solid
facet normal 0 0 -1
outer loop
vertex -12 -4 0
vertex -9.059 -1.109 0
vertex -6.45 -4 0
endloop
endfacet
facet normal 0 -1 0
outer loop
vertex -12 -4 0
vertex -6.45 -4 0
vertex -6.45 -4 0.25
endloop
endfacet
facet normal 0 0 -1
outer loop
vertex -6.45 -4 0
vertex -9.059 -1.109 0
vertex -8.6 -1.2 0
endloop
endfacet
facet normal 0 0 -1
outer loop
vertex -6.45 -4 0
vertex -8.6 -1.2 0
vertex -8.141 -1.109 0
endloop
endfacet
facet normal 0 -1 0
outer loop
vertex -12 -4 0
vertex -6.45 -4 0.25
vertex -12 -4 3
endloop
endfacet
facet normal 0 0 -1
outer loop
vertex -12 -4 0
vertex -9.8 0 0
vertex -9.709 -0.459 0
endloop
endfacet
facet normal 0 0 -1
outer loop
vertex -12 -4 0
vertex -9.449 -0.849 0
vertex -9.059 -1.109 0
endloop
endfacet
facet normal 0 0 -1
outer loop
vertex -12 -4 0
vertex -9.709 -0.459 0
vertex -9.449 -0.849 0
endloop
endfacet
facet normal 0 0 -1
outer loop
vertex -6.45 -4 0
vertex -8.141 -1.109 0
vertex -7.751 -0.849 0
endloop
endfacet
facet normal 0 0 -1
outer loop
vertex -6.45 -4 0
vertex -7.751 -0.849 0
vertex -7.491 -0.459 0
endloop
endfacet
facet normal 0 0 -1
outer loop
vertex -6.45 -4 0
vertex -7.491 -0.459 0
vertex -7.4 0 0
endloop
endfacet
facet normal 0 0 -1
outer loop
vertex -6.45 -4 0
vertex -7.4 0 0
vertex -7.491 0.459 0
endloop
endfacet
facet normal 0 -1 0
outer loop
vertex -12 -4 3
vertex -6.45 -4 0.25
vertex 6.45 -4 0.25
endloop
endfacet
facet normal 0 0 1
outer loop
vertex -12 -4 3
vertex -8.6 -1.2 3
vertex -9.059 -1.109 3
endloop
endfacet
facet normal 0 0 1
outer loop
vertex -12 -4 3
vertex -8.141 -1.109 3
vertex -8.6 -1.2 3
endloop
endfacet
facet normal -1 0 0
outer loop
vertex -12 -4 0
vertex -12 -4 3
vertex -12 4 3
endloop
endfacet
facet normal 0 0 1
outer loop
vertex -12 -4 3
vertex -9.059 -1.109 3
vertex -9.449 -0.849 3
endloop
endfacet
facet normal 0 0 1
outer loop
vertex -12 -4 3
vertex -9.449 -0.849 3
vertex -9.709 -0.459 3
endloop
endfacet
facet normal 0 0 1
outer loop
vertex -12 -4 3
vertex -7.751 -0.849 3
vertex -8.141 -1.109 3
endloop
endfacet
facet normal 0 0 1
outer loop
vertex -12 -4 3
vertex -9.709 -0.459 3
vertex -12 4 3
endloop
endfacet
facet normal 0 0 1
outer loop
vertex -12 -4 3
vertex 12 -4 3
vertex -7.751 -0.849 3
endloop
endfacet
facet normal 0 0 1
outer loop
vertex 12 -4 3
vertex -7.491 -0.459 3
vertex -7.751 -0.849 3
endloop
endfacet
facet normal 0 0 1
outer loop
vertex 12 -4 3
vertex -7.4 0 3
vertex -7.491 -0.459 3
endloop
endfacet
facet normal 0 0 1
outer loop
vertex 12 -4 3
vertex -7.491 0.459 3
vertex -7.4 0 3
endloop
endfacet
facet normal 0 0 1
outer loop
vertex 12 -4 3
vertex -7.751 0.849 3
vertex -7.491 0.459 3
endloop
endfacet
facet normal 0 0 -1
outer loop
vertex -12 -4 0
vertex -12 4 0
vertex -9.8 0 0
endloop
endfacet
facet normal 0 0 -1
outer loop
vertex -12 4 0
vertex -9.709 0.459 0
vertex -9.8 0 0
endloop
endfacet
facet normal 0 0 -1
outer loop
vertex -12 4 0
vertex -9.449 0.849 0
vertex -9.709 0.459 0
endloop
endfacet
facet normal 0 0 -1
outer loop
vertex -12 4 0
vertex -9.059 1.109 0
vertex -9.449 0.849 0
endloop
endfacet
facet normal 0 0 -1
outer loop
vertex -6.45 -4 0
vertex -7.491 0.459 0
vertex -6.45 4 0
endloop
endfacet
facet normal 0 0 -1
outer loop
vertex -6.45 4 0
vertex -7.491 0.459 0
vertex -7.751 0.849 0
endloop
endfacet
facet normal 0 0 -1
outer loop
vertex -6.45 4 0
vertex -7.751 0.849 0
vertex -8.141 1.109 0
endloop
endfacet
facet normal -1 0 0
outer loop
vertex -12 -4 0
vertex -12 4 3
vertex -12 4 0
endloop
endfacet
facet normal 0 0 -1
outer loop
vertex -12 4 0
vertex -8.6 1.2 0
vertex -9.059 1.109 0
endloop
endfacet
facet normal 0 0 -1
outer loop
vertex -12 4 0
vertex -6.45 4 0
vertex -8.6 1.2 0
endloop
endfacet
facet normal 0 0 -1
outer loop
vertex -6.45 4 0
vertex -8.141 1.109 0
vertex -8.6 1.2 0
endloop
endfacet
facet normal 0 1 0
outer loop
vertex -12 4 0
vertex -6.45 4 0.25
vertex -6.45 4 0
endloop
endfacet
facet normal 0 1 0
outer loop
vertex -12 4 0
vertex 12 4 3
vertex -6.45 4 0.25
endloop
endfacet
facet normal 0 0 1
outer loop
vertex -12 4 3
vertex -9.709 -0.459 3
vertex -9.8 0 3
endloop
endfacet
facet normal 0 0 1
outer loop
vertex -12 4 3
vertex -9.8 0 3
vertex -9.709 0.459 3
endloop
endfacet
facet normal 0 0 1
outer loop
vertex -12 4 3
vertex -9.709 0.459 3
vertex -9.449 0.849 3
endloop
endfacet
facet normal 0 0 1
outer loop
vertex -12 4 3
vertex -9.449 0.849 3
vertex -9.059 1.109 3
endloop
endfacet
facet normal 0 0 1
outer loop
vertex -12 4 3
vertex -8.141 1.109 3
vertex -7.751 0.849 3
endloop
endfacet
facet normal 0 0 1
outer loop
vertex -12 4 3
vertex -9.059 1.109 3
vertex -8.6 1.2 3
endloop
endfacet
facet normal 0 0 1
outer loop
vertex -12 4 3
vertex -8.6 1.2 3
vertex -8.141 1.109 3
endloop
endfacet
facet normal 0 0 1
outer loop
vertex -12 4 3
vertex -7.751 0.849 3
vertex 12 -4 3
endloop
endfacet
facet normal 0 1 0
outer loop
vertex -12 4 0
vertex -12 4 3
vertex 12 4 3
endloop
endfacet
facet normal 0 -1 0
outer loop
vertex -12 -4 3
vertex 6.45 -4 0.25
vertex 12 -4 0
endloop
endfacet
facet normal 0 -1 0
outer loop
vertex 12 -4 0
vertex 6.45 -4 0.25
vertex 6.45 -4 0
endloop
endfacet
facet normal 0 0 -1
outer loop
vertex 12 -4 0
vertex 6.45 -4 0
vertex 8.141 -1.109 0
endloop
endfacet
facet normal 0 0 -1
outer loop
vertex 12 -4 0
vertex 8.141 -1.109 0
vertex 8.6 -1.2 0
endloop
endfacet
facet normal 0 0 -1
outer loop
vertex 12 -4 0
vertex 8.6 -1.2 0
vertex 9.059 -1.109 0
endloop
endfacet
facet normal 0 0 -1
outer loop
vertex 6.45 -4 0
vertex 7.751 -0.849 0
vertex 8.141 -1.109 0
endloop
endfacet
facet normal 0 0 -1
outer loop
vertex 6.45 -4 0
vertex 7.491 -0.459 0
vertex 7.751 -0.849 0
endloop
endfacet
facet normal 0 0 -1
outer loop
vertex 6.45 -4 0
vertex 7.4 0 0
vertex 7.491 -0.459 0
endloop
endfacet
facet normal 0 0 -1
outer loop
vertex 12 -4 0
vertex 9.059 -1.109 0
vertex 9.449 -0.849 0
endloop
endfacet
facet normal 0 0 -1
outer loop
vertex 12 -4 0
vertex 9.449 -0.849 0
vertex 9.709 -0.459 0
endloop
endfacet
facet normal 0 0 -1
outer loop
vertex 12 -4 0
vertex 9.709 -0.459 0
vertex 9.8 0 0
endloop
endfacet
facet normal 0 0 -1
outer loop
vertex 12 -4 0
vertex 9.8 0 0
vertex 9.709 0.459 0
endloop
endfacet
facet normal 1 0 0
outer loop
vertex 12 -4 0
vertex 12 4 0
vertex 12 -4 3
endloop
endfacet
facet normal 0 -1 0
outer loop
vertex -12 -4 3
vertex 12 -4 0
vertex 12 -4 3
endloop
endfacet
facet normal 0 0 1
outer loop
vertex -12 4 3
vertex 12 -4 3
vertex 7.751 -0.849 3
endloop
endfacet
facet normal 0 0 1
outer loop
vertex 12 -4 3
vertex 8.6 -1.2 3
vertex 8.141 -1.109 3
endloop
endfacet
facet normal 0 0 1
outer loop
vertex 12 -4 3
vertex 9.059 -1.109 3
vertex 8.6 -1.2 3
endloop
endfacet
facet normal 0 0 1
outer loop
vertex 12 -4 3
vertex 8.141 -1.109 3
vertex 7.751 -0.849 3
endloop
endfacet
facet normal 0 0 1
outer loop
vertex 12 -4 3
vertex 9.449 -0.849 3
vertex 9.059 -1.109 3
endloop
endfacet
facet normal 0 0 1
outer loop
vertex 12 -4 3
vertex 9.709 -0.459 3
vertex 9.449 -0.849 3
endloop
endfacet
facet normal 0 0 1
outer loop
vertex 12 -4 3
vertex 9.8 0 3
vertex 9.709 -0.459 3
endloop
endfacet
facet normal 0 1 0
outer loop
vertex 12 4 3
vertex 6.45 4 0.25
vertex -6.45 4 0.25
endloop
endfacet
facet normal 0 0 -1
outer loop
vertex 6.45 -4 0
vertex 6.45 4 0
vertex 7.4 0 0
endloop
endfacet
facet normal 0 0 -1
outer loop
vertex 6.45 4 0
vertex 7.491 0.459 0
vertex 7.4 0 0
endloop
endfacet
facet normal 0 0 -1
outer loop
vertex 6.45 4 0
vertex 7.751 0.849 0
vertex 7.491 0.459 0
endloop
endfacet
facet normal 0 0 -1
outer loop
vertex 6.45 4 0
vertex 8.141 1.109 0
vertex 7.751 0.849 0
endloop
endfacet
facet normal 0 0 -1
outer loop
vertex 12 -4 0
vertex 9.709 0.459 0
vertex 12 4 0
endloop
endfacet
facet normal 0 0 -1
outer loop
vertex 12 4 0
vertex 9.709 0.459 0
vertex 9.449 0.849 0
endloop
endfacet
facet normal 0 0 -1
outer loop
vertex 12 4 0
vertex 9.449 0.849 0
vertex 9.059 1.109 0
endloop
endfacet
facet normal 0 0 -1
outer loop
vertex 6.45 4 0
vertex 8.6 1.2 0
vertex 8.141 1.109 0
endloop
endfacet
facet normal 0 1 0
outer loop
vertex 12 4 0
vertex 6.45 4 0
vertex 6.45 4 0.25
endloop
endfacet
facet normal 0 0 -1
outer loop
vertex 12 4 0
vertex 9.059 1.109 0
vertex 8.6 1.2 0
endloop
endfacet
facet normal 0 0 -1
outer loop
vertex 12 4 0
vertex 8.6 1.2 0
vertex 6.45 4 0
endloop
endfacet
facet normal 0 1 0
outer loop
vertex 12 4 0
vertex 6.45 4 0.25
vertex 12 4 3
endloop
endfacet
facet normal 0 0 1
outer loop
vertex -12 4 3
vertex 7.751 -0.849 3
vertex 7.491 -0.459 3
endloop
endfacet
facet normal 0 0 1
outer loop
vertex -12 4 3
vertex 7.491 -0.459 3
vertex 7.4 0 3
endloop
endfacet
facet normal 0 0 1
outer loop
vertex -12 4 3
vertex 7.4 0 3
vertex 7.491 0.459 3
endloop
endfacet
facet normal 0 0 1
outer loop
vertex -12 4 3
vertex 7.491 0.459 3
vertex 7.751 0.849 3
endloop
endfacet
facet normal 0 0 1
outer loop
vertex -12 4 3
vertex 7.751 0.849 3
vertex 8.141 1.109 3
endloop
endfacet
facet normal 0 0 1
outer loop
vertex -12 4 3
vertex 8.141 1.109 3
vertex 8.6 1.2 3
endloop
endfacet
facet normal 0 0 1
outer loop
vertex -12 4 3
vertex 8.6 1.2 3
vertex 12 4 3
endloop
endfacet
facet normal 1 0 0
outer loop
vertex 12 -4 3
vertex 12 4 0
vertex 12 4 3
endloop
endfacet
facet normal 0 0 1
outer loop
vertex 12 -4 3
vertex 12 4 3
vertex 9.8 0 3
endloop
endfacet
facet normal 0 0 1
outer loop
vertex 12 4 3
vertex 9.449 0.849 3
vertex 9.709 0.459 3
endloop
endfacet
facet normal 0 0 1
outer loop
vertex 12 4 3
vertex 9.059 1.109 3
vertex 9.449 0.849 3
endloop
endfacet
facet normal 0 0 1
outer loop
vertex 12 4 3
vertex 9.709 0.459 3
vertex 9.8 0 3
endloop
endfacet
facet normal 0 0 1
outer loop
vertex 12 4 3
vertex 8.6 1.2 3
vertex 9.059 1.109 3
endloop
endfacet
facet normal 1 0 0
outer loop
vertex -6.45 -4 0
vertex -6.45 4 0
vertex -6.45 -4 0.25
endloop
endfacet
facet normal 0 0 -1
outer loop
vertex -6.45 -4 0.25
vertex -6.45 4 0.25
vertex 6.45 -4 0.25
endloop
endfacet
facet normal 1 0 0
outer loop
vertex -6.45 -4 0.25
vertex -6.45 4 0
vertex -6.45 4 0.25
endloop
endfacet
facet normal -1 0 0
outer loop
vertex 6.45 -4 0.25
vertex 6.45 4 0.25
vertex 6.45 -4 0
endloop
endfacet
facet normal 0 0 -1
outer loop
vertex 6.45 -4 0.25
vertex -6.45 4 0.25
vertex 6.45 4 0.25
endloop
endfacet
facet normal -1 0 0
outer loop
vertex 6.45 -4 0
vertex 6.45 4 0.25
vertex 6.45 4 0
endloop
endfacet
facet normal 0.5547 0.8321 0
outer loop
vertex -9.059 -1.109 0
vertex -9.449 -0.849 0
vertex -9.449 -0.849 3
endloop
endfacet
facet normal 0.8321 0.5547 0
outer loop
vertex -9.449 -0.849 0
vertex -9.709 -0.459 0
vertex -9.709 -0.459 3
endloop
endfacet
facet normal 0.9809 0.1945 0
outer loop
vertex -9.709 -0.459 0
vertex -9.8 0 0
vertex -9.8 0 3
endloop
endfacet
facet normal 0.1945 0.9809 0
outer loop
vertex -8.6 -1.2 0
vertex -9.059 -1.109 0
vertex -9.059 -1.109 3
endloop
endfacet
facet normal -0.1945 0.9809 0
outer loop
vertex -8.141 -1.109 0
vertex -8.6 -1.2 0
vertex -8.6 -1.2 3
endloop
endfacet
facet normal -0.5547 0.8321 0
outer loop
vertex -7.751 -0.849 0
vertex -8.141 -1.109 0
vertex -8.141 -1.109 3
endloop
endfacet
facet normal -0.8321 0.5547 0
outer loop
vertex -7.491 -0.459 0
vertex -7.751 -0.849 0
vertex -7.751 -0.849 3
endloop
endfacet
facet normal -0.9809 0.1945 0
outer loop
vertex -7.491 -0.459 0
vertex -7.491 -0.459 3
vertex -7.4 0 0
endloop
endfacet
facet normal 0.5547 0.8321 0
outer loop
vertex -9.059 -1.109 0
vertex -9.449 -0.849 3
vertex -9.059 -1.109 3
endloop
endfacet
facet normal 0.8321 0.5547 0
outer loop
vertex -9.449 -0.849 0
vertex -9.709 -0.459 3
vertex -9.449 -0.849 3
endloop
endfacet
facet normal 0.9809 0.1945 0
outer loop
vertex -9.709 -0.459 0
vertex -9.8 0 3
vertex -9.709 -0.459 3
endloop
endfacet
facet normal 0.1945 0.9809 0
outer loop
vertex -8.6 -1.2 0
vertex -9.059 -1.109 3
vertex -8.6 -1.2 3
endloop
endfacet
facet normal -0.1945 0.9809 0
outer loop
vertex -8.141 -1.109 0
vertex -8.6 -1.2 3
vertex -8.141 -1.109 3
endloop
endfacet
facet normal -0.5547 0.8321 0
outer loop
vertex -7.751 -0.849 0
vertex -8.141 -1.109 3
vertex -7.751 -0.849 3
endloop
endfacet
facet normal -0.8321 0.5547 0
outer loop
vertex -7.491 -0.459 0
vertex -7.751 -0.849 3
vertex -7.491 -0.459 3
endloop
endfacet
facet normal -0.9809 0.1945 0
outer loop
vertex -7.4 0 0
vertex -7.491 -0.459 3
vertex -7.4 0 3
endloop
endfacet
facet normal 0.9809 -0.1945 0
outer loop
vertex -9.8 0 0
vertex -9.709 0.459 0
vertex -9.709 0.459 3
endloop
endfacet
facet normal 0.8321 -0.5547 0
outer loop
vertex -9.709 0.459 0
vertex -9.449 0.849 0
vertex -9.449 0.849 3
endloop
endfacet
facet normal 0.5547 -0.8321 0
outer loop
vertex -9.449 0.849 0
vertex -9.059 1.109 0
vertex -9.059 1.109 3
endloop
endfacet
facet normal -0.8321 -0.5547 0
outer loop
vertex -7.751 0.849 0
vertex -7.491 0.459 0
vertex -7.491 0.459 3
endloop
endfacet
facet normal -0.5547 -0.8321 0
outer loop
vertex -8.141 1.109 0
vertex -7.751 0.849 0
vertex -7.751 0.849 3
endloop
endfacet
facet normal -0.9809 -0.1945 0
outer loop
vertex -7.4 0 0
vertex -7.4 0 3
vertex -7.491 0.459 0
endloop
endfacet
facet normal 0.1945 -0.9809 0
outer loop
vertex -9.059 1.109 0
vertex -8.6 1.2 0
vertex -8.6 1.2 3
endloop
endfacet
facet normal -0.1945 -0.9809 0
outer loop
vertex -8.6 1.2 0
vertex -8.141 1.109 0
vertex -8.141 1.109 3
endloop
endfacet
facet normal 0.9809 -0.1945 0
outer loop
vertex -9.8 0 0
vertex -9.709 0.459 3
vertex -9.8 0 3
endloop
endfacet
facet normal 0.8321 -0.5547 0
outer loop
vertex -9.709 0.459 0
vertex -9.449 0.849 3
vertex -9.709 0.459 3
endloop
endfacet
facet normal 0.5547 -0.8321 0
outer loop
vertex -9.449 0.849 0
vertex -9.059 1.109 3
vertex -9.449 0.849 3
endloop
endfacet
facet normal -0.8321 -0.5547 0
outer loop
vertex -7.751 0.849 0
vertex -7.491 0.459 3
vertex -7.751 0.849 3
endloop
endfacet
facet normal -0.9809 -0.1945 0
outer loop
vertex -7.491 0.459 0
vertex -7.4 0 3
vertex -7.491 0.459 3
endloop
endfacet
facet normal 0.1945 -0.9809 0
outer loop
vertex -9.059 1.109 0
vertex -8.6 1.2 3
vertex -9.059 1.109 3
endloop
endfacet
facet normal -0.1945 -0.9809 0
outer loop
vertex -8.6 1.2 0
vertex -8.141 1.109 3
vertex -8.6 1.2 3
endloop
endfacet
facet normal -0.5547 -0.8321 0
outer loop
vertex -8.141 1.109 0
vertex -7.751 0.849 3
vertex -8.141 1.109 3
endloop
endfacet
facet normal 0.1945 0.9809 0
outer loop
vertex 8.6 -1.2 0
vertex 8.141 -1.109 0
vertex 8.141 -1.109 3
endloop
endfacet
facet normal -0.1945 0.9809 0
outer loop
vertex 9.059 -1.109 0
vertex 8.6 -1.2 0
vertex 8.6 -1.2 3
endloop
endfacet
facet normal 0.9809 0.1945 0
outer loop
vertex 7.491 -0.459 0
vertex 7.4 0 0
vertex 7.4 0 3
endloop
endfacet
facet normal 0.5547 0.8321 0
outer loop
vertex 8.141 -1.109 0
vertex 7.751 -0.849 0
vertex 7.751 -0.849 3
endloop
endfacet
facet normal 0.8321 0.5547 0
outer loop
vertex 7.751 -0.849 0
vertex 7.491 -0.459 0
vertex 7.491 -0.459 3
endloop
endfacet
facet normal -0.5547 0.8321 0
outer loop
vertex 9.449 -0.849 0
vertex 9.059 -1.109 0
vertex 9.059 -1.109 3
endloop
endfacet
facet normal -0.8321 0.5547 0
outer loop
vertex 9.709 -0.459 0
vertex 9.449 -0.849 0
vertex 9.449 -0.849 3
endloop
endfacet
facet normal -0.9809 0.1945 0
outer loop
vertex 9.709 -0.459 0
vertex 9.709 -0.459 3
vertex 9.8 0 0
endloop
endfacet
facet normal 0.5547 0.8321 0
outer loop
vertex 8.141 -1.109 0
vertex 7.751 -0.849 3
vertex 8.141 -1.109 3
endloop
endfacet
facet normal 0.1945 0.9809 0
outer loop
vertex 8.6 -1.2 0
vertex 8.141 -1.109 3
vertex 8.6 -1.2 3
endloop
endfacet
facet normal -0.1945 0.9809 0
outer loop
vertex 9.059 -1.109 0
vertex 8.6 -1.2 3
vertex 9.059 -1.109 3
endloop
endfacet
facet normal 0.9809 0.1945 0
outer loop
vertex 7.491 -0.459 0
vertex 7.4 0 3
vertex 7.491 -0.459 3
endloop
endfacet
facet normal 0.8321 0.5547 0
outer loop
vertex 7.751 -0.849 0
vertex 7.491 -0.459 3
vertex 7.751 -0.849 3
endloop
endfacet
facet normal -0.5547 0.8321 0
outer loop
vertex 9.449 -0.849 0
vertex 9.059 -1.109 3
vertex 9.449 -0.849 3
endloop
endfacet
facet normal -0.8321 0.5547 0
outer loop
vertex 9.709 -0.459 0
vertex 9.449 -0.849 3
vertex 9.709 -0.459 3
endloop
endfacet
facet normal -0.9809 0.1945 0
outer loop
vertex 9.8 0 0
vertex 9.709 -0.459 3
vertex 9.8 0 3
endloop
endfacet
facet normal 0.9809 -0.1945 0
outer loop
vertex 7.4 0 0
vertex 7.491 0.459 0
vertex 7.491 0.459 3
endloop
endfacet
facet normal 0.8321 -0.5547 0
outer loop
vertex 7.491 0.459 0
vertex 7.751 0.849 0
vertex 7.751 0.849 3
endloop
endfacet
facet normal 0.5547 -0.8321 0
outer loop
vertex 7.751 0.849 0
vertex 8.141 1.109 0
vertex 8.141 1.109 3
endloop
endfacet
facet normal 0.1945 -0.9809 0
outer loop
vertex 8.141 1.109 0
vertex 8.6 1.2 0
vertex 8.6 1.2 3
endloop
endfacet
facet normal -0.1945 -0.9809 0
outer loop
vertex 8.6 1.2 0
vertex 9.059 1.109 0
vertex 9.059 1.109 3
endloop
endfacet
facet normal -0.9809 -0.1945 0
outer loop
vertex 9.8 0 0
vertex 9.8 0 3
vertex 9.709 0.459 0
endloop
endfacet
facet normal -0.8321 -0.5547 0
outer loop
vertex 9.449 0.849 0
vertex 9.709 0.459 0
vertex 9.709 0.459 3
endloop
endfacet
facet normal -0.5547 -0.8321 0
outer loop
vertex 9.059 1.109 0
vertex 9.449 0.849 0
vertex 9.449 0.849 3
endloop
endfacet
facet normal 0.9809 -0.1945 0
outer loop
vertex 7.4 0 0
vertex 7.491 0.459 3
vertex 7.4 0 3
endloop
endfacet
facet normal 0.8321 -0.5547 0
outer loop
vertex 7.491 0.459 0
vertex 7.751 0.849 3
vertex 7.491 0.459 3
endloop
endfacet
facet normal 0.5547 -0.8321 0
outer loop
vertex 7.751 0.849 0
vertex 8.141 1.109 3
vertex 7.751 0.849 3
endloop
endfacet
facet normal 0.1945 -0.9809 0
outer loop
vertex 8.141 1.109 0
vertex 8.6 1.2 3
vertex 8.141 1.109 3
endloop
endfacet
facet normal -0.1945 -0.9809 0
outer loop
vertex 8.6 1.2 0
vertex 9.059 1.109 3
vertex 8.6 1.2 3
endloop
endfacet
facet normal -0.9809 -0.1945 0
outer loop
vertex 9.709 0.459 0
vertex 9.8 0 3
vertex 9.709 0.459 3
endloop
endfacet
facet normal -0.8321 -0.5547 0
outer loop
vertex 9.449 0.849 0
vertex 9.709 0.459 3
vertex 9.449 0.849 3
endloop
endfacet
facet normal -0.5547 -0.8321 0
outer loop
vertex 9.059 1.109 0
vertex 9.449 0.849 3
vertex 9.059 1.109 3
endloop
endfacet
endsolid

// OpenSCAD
// =====================================================================
//  p34_root_clamp_bar.scad - P34 root clamp bar (x3), presses the leaf onto the tray root-block floor
//  PROJECT SCRATCH · 05-engineering/cad/frame · units: mm · frame: local (bar centred, z 0..3, groove side at z = 0)
//  Sources: mechanical.md section 8.6 (24 x 8 x 3, groove 12.9 x 0.25 shallower than the 0.30 leaf, 2 x diam 2.4
//  at +/-8.6, M2 x 6 at 0.15 N m), 11 P34.  Same scheme as the tip lead's paddle clamp bar.  Print groove UP.
// =====================================================================
include <lib_sp1.scad>
BAR_X = 24;  BAR_Y = 8;  BAR_T = 3;  GROOVE_W = 12.9;  GROOVE_D = 0.25;  HOLE_D = M2_CLEAR;  HOLE_X = 8.6;
module p34_root_clamp_bar() difference() {
    cbox(0, 0, BAR_T / 2, BAR_X, BAR_Y, BAR_T);
    cbox(0, 0, GROOVE_D / 2 - 0.005, GROOVE_W, BAR_Y + 2, GROOVE_D + 0.01);
    for (sx = [-HOLE_X, HOLE_X]) cyl_z(HOLE_D / 2, -1, BAR_T + 1, sx, 0, fn = 16);
}
p34_root_clamp_bar();
